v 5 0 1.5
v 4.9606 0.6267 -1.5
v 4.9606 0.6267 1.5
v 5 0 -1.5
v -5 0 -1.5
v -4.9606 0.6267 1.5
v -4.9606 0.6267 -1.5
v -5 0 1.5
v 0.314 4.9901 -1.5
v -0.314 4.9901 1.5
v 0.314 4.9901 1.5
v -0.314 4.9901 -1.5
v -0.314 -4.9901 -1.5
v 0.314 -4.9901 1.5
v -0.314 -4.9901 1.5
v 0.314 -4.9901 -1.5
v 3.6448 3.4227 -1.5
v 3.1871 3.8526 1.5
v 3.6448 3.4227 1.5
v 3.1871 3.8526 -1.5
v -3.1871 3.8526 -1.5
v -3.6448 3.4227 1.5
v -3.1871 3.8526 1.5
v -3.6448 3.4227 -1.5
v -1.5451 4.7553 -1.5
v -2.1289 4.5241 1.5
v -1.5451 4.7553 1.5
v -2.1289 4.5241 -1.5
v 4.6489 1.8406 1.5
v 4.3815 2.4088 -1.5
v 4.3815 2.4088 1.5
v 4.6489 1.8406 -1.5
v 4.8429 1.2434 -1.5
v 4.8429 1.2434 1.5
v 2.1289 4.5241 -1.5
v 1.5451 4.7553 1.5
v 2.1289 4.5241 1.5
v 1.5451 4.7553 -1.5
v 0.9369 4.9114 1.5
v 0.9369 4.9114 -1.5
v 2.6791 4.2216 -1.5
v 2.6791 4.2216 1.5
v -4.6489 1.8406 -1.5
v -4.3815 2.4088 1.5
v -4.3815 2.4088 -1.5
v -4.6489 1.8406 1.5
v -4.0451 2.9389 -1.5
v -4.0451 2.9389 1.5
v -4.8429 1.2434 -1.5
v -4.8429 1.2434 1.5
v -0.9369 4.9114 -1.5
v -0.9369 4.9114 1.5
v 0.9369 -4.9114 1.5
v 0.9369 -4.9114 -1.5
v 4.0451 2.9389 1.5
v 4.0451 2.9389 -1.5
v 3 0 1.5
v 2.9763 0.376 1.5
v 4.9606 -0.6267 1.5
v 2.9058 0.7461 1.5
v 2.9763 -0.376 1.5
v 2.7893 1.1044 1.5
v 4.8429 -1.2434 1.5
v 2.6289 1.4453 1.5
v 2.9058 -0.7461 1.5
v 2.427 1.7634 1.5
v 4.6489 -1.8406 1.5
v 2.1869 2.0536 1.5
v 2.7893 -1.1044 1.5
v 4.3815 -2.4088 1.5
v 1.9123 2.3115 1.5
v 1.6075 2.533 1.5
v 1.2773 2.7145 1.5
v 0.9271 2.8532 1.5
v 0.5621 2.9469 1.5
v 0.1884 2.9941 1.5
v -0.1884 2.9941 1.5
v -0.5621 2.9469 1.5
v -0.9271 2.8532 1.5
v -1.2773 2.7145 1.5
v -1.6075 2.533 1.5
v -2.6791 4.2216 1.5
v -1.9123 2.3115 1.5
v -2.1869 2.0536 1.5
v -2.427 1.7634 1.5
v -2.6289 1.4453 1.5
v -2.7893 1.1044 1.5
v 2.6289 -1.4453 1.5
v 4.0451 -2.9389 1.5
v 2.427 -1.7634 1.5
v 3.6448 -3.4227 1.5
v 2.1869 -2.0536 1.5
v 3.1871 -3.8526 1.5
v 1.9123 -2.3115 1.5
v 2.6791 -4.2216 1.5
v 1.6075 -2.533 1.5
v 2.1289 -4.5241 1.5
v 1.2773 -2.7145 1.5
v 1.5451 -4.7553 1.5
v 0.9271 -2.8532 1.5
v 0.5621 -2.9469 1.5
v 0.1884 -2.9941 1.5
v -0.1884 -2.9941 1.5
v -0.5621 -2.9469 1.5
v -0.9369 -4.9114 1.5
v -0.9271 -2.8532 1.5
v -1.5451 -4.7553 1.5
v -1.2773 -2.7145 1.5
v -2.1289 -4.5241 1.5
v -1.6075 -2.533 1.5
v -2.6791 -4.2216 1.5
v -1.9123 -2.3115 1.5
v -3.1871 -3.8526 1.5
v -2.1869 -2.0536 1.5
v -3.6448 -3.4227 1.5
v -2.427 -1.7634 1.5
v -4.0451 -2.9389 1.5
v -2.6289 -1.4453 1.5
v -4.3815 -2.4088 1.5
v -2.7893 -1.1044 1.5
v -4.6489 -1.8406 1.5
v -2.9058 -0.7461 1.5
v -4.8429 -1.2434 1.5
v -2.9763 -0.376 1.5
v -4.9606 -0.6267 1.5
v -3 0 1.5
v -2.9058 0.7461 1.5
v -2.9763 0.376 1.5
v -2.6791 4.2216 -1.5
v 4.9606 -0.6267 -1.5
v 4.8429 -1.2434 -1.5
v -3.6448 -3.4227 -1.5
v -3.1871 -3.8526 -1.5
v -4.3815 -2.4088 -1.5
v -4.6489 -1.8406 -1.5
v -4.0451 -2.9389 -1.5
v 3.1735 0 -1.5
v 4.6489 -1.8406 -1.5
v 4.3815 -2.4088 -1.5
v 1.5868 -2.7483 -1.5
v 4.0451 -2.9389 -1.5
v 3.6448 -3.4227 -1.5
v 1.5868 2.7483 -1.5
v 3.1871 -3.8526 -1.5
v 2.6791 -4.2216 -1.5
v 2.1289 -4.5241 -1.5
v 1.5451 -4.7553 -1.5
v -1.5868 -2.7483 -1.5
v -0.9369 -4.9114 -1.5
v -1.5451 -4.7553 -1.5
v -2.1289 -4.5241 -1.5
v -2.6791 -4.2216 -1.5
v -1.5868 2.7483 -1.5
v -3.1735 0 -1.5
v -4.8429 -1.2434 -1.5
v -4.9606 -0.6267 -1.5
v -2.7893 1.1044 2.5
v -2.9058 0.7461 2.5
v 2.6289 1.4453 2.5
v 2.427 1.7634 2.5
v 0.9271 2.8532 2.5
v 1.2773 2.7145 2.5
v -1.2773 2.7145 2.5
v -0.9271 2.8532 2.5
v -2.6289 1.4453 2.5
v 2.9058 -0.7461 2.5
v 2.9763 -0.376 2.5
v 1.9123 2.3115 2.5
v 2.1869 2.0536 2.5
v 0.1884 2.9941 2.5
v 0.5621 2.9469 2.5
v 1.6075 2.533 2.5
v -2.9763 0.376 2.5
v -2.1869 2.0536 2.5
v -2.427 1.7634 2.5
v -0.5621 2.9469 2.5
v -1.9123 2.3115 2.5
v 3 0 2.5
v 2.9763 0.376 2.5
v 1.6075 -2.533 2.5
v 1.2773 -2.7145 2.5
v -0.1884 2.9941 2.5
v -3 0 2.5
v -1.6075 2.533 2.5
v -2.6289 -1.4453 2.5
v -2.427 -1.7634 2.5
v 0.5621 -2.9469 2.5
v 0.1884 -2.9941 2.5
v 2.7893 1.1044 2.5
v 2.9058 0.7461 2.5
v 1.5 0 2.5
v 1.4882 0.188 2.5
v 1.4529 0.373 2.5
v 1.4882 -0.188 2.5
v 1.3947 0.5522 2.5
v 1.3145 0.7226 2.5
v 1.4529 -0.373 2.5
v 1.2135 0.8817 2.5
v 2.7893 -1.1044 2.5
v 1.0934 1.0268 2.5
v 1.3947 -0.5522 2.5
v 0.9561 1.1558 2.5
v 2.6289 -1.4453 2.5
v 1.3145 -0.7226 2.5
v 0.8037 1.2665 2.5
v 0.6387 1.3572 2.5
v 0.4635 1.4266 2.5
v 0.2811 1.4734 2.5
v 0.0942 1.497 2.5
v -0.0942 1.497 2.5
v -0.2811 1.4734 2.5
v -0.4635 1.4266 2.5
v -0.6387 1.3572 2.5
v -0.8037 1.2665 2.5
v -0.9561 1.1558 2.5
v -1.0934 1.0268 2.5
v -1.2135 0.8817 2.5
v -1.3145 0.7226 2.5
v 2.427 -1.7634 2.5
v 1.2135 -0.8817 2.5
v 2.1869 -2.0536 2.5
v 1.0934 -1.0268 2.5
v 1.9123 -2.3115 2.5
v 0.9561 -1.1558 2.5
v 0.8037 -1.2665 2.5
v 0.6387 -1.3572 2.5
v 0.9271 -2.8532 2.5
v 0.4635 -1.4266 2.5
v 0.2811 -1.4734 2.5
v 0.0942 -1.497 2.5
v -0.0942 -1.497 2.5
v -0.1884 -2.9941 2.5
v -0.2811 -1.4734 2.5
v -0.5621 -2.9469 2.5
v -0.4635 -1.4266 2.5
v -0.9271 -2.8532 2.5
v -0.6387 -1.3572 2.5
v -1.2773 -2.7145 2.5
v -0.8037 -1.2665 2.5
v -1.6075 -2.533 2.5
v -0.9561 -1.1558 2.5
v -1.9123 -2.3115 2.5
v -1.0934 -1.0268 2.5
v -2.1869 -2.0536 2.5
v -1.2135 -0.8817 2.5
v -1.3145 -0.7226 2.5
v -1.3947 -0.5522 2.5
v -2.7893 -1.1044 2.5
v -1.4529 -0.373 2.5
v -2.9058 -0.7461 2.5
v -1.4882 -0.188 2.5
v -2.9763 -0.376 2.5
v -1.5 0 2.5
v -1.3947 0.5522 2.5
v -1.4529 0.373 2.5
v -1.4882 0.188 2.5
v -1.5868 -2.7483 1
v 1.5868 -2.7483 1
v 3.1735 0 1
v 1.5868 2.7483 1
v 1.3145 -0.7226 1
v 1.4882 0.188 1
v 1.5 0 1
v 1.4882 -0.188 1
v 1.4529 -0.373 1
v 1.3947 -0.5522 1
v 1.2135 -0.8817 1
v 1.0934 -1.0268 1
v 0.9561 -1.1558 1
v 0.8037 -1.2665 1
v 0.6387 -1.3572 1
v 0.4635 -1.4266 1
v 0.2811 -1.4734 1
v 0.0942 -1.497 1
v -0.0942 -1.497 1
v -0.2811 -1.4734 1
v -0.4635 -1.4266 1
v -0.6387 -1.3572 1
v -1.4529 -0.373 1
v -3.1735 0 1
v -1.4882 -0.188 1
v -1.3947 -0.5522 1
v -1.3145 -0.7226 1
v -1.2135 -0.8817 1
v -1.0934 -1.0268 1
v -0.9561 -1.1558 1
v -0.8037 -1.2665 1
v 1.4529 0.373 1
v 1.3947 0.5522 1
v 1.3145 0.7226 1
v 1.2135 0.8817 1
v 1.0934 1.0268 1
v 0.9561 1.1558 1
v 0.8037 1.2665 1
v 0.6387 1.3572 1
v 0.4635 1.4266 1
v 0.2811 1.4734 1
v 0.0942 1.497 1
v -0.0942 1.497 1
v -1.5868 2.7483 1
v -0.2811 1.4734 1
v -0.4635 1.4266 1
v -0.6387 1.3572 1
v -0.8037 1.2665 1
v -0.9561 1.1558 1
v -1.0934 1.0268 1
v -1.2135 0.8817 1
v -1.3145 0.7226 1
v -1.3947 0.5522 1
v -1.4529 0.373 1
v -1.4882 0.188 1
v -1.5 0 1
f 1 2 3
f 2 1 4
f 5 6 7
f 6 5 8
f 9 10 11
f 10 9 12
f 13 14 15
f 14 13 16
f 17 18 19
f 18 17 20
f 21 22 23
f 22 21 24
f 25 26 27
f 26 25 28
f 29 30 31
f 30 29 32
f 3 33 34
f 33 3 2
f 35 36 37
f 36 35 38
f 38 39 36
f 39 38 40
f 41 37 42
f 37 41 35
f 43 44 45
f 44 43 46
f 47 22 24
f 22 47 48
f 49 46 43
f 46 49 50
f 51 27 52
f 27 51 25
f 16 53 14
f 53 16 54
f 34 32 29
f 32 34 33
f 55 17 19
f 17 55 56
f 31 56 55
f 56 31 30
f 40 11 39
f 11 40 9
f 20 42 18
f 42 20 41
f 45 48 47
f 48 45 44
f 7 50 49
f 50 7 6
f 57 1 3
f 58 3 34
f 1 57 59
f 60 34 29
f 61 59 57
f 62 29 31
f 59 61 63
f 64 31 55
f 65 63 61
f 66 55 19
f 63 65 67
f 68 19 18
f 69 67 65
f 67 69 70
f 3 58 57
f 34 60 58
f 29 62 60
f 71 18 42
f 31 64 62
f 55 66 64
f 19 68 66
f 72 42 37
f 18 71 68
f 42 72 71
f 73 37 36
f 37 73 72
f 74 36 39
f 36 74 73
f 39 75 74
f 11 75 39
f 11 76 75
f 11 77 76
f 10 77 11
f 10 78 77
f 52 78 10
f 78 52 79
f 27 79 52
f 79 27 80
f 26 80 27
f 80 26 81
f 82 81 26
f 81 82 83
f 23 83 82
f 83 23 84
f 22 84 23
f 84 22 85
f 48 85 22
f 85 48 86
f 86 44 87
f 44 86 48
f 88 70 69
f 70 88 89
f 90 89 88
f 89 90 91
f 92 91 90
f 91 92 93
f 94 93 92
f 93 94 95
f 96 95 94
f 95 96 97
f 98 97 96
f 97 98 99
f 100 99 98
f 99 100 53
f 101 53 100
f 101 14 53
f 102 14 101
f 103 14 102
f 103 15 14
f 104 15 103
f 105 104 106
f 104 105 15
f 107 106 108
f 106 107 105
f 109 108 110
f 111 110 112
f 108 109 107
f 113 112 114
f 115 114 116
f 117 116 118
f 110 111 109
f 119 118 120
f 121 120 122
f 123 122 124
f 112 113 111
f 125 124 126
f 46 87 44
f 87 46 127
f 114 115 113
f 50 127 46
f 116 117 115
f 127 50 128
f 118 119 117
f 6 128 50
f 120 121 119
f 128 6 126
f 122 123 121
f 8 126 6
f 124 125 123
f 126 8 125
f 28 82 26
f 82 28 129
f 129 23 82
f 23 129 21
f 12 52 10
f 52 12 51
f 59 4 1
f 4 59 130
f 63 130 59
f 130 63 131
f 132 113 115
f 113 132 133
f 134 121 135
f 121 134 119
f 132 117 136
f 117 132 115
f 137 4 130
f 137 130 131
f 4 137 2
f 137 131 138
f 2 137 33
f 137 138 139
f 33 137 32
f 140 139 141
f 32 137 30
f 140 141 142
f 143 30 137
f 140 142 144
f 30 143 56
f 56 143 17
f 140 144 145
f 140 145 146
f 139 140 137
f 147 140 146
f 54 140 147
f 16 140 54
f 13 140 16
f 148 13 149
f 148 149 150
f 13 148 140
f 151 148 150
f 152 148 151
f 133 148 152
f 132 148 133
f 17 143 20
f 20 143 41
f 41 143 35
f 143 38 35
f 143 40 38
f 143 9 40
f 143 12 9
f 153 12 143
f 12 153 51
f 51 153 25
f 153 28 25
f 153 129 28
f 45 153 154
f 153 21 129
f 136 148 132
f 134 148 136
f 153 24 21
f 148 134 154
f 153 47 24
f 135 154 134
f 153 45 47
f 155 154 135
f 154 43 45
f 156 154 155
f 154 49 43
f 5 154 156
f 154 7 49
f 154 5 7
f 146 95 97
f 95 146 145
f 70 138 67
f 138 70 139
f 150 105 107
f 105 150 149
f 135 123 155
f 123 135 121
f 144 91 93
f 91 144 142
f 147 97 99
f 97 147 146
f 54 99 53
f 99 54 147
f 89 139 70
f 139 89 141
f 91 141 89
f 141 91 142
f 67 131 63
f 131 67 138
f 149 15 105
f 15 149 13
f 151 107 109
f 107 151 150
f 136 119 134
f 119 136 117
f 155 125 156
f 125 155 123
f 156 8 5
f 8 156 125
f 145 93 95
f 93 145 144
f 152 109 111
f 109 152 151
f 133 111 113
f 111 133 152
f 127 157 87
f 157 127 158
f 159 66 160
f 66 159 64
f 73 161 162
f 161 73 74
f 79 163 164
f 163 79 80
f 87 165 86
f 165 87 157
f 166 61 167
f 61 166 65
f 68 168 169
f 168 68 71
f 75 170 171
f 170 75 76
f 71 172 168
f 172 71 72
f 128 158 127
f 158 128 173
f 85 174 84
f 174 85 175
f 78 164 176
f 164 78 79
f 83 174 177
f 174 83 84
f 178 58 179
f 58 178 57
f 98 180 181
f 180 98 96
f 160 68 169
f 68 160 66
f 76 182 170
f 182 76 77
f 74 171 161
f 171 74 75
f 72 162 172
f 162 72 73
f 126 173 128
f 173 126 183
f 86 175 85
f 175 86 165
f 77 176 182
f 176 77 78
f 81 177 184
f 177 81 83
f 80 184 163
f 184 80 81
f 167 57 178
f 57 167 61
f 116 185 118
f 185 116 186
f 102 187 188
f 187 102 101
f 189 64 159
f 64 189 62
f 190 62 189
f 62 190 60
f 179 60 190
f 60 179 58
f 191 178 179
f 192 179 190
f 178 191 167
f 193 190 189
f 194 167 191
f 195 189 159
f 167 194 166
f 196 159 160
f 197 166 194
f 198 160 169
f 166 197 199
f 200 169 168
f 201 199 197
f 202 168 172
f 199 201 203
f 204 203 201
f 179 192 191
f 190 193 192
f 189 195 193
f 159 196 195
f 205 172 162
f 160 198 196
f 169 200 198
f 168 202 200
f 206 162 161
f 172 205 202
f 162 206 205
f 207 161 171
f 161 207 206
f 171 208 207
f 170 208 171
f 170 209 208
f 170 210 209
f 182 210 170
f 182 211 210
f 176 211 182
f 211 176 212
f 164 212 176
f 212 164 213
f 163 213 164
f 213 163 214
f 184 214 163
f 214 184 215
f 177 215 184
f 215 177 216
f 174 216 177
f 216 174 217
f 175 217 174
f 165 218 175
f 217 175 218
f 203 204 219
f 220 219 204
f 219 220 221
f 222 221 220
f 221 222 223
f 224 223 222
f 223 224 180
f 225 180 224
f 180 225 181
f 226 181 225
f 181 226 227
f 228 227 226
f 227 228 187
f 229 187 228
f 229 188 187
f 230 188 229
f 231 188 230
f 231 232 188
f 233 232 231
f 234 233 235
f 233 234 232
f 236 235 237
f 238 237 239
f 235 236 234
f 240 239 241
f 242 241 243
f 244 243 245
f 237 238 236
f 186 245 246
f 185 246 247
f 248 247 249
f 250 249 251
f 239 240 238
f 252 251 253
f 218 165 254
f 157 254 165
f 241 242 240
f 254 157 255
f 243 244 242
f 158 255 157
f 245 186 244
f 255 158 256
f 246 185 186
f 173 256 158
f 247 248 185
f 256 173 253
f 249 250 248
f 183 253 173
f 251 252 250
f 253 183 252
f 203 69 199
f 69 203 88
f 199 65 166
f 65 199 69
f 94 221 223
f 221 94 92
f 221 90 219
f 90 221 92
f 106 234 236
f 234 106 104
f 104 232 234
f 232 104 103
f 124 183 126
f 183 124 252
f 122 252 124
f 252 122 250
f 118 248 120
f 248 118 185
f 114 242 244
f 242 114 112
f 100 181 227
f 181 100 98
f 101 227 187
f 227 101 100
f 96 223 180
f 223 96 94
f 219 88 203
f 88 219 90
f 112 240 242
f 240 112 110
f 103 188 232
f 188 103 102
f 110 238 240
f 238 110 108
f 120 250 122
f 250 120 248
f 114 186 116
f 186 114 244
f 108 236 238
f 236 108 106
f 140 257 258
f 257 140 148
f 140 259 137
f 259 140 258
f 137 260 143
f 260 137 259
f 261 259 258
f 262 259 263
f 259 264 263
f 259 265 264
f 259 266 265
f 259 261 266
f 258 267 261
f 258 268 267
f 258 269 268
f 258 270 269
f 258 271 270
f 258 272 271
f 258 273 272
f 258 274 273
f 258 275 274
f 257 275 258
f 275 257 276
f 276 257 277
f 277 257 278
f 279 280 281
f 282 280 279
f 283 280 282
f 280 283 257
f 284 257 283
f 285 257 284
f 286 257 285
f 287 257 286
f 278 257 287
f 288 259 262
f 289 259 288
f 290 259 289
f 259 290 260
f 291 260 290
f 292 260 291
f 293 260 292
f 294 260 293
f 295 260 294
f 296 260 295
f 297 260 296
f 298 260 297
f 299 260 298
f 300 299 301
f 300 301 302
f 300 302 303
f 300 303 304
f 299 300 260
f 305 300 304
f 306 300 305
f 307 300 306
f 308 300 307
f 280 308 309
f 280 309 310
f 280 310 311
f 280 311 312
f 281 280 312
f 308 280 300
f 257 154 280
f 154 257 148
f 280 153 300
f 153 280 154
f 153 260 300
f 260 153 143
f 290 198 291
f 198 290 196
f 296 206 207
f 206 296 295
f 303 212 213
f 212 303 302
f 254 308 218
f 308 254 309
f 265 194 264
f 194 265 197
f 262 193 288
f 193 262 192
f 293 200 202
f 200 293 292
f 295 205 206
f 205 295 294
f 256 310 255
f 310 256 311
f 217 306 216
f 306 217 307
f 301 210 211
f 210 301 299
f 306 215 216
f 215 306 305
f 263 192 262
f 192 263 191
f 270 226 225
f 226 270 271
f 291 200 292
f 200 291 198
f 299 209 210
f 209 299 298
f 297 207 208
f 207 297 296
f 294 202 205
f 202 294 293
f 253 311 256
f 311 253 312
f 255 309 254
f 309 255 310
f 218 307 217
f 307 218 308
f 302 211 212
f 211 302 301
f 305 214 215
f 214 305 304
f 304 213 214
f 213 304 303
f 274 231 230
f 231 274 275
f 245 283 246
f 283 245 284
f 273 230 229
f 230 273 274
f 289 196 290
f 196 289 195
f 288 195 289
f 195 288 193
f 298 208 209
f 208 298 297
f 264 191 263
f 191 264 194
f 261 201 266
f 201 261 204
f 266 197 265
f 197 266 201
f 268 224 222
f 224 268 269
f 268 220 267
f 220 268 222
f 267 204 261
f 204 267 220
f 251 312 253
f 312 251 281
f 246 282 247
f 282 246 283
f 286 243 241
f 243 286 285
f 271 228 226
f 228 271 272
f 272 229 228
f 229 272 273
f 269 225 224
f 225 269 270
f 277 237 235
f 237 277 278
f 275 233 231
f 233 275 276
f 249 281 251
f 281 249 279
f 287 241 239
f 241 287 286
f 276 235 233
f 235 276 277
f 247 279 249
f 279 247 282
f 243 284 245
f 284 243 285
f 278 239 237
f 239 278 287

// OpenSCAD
$fn = 50;


difference() {
	union() {
		translate(v = [0, 0, -1.5000000000]) {
			cylinder(h = 3, r = 5.0000000000);
		}
		translate(v = [0, 0, -1.5000000000]) {
			cylinder(h = 4, r = 3.0000000000);
		}
	}
	union() {
		translate(v = [0, 0, -1.5000000000]) {
			rotate(a = [0, 0, 0]) {
				difference() {
					union() {
						linear_extrude(height = 2.5000000000) {
							polygon(points = [[3.1735000000, 0.0000000000], [1.5867500000, 2.7483316189], [-1.5867500000, 2.7483316189], [-3.1735000000, 0.0000000000], [-1.5867500000, -2.7483316189], [1.5867500000, -2.7483316189]]);
						}
					}
					union();
				}
			}
		}
		translate(v = [0, 0, -100.0000000000]) {
			cylinder(h = 200, r = 1.5000000000);
		}
	}
}
